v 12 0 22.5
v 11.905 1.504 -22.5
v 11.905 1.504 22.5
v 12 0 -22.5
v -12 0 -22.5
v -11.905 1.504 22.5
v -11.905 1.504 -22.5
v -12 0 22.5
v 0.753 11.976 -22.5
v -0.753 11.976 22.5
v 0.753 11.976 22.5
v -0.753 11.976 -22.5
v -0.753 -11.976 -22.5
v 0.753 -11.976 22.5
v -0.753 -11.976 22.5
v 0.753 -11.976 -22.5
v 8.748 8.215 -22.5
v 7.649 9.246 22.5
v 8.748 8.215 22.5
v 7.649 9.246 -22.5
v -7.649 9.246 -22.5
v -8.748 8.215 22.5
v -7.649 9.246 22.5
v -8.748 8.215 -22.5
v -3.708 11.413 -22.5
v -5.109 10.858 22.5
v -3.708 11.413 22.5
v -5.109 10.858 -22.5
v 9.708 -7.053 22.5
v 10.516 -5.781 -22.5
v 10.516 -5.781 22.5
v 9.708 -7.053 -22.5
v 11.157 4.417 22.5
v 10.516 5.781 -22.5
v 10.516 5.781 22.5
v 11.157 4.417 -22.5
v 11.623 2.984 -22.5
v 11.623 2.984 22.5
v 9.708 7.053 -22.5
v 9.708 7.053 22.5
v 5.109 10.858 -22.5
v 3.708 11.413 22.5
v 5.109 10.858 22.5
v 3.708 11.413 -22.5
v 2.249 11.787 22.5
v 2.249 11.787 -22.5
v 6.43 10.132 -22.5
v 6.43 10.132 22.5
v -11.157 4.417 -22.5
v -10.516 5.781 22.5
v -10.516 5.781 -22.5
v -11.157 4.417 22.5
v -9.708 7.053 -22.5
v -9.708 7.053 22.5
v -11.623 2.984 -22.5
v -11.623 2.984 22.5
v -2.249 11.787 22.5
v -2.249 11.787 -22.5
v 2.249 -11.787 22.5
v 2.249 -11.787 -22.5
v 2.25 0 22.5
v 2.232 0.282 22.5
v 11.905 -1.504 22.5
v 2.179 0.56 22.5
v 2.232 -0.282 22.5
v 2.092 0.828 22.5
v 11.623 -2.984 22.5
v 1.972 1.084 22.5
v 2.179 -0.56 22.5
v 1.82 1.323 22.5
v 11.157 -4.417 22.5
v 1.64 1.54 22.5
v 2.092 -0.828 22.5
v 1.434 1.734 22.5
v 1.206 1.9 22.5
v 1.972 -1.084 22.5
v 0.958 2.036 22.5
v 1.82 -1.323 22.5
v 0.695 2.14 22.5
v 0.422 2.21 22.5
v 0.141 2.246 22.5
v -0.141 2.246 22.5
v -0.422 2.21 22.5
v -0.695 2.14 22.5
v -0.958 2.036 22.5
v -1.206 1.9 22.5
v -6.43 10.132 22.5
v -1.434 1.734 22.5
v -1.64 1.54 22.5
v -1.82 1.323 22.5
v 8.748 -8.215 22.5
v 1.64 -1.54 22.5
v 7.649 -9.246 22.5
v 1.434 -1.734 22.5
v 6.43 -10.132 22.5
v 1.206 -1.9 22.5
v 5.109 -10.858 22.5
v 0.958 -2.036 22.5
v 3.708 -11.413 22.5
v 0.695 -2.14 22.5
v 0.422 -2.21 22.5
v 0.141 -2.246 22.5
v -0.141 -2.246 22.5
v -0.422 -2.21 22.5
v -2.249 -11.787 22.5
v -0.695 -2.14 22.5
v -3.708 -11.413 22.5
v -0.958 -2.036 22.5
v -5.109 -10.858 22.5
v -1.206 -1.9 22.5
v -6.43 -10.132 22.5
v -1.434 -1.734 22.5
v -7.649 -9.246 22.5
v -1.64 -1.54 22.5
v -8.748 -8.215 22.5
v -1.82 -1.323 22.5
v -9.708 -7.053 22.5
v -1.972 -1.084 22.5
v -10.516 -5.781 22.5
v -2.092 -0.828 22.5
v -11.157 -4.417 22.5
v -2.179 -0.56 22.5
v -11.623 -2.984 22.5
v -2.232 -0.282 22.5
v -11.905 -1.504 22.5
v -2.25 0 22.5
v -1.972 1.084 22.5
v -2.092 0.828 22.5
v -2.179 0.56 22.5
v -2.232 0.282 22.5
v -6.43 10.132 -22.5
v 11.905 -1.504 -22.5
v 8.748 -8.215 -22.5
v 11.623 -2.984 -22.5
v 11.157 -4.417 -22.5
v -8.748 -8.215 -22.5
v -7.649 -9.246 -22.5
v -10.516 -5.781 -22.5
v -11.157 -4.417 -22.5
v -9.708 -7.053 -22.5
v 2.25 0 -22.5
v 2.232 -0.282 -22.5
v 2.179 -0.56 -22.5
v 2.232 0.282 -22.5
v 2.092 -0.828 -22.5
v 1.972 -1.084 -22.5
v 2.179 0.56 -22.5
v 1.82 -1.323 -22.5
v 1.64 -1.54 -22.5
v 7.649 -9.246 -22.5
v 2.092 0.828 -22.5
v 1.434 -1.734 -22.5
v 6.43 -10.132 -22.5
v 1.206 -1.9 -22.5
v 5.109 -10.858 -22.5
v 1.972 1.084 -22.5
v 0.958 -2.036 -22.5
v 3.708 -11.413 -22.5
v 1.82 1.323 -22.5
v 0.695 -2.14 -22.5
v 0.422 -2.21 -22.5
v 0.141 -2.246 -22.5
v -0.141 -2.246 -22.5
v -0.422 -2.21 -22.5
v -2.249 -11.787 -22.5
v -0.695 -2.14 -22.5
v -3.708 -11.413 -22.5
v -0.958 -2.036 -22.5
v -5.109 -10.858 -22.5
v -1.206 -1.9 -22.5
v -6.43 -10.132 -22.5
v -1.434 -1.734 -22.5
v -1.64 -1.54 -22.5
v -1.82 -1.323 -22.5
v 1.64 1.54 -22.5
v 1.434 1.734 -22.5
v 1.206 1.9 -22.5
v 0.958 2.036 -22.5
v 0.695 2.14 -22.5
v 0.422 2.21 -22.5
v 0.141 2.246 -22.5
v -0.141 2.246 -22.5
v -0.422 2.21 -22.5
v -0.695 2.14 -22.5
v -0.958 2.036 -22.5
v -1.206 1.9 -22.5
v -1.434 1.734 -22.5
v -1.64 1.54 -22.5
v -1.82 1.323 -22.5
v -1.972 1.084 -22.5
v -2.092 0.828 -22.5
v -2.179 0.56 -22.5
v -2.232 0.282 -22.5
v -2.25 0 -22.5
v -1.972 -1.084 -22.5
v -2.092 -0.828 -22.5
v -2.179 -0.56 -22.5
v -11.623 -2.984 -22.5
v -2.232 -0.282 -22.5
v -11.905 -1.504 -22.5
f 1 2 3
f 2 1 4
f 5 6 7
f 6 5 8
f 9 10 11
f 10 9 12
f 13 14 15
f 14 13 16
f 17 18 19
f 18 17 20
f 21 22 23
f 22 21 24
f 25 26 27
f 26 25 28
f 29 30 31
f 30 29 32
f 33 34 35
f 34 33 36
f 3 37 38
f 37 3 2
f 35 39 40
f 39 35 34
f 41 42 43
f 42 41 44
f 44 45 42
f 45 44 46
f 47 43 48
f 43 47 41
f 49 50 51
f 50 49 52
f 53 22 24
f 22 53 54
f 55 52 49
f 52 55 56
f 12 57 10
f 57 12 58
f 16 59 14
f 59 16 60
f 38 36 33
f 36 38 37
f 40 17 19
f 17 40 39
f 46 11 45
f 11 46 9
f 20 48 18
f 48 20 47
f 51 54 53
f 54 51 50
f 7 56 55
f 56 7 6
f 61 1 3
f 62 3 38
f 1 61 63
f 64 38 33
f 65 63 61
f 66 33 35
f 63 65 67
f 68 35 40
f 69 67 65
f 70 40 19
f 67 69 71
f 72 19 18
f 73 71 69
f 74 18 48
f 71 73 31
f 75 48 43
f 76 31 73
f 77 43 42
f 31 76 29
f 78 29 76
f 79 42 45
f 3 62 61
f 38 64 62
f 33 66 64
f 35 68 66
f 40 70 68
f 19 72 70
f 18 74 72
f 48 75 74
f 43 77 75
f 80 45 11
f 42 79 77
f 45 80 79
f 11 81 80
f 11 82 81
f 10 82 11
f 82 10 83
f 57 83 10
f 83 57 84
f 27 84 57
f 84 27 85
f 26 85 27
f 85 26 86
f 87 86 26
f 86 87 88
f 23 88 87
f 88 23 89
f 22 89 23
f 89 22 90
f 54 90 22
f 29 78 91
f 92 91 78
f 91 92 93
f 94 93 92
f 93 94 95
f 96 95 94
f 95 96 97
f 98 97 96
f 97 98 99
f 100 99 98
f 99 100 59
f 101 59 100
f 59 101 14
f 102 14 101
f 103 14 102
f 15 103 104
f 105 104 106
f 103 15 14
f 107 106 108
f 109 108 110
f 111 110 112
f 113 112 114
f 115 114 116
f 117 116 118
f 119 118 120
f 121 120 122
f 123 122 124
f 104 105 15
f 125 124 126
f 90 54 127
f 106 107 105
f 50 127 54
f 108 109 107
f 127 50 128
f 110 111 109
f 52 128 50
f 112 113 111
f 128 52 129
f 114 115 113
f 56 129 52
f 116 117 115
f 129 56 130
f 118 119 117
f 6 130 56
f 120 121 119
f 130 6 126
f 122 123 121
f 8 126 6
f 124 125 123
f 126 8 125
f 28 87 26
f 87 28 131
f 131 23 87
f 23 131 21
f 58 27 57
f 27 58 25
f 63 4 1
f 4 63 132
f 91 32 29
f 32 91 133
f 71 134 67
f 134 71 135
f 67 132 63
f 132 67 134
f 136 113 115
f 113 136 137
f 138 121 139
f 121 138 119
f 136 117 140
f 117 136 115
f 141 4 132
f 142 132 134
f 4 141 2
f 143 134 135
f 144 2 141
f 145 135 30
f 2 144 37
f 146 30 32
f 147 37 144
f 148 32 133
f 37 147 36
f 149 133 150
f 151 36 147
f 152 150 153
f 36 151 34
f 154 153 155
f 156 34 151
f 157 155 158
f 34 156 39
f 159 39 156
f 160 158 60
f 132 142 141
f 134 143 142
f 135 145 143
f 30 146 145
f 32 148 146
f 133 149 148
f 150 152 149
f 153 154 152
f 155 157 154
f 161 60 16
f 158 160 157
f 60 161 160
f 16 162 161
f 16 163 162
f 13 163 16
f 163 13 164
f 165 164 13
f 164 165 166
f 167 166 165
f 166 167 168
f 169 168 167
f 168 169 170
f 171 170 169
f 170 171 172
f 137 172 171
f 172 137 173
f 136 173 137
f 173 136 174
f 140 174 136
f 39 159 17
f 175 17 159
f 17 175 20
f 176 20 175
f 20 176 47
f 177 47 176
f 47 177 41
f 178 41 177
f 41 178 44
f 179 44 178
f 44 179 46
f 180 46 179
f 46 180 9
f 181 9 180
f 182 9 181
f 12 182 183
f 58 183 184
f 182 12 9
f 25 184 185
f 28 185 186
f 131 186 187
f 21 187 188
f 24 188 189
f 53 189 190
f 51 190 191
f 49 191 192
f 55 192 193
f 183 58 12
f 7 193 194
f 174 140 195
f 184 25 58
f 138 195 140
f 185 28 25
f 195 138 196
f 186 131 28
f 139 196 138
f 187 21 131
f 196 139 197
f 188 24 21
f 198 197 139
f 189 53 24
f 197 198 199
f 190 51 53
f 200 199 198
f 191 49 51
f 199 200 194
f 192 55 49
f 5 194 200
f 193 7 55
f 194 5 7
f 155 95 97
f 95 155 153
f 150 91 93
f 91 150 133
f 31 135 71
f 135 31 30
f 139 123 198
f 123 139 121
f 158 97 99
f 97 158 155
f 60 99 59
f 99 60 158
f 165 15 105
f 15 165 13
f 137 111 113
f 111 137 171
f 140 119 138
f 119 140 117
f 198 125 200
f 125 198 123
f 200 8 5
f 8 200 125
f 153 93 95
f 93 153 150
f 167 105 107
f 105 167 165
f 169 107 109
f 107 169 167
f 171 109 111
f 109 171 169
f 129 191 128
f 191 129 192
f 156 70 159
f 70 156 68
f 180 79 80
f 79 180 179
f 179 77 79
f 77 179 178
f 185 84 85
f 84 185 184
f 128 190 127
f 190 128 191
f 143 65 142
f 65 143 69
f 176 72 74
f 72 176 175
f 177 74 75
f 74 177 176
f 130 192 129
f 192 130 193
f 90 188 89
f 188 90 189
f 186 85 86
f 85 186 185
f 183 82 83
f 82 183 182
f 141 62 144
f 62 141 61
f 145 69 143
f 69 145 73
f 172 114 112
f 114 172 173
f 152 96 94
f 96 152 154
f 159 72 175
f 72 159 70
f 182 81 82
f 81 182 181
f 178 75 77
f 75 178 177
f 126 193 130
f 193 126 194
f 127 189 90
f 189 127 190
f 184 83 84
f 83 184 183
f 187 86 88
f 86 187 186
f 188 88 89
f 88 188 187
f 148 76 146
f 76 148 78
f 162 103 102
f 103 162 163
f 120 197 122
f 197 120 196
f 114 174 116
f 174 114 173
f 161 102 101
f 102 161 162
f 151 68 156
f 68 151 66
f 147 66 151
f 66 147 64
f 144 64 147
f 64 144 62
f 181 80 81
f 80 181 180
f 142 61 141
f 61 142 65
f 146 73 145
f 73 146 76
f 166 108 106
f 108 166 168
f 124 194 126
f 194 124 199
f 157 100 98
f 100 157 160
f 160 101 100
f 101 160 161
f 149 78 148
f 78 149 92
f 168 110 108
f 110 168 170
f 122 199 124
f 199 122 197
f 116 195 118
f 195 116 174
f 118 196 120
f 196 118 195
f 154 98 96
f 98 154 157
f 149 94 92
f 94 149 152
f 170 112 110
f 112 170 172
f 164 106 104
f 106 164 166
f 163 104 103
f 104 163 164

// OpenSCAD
$fn = 50;


difference() {
	union() {
		translate(v = [0, 0, -22.5000000000]) {
			cylinder(h = 45, r = 12.0000000000);
		}
	}
	union() {
		translate(v = [0, 0, -100.0000000000]) {
			cylinder(h = 200, r = 2.2500000000);
		}
	}
}
